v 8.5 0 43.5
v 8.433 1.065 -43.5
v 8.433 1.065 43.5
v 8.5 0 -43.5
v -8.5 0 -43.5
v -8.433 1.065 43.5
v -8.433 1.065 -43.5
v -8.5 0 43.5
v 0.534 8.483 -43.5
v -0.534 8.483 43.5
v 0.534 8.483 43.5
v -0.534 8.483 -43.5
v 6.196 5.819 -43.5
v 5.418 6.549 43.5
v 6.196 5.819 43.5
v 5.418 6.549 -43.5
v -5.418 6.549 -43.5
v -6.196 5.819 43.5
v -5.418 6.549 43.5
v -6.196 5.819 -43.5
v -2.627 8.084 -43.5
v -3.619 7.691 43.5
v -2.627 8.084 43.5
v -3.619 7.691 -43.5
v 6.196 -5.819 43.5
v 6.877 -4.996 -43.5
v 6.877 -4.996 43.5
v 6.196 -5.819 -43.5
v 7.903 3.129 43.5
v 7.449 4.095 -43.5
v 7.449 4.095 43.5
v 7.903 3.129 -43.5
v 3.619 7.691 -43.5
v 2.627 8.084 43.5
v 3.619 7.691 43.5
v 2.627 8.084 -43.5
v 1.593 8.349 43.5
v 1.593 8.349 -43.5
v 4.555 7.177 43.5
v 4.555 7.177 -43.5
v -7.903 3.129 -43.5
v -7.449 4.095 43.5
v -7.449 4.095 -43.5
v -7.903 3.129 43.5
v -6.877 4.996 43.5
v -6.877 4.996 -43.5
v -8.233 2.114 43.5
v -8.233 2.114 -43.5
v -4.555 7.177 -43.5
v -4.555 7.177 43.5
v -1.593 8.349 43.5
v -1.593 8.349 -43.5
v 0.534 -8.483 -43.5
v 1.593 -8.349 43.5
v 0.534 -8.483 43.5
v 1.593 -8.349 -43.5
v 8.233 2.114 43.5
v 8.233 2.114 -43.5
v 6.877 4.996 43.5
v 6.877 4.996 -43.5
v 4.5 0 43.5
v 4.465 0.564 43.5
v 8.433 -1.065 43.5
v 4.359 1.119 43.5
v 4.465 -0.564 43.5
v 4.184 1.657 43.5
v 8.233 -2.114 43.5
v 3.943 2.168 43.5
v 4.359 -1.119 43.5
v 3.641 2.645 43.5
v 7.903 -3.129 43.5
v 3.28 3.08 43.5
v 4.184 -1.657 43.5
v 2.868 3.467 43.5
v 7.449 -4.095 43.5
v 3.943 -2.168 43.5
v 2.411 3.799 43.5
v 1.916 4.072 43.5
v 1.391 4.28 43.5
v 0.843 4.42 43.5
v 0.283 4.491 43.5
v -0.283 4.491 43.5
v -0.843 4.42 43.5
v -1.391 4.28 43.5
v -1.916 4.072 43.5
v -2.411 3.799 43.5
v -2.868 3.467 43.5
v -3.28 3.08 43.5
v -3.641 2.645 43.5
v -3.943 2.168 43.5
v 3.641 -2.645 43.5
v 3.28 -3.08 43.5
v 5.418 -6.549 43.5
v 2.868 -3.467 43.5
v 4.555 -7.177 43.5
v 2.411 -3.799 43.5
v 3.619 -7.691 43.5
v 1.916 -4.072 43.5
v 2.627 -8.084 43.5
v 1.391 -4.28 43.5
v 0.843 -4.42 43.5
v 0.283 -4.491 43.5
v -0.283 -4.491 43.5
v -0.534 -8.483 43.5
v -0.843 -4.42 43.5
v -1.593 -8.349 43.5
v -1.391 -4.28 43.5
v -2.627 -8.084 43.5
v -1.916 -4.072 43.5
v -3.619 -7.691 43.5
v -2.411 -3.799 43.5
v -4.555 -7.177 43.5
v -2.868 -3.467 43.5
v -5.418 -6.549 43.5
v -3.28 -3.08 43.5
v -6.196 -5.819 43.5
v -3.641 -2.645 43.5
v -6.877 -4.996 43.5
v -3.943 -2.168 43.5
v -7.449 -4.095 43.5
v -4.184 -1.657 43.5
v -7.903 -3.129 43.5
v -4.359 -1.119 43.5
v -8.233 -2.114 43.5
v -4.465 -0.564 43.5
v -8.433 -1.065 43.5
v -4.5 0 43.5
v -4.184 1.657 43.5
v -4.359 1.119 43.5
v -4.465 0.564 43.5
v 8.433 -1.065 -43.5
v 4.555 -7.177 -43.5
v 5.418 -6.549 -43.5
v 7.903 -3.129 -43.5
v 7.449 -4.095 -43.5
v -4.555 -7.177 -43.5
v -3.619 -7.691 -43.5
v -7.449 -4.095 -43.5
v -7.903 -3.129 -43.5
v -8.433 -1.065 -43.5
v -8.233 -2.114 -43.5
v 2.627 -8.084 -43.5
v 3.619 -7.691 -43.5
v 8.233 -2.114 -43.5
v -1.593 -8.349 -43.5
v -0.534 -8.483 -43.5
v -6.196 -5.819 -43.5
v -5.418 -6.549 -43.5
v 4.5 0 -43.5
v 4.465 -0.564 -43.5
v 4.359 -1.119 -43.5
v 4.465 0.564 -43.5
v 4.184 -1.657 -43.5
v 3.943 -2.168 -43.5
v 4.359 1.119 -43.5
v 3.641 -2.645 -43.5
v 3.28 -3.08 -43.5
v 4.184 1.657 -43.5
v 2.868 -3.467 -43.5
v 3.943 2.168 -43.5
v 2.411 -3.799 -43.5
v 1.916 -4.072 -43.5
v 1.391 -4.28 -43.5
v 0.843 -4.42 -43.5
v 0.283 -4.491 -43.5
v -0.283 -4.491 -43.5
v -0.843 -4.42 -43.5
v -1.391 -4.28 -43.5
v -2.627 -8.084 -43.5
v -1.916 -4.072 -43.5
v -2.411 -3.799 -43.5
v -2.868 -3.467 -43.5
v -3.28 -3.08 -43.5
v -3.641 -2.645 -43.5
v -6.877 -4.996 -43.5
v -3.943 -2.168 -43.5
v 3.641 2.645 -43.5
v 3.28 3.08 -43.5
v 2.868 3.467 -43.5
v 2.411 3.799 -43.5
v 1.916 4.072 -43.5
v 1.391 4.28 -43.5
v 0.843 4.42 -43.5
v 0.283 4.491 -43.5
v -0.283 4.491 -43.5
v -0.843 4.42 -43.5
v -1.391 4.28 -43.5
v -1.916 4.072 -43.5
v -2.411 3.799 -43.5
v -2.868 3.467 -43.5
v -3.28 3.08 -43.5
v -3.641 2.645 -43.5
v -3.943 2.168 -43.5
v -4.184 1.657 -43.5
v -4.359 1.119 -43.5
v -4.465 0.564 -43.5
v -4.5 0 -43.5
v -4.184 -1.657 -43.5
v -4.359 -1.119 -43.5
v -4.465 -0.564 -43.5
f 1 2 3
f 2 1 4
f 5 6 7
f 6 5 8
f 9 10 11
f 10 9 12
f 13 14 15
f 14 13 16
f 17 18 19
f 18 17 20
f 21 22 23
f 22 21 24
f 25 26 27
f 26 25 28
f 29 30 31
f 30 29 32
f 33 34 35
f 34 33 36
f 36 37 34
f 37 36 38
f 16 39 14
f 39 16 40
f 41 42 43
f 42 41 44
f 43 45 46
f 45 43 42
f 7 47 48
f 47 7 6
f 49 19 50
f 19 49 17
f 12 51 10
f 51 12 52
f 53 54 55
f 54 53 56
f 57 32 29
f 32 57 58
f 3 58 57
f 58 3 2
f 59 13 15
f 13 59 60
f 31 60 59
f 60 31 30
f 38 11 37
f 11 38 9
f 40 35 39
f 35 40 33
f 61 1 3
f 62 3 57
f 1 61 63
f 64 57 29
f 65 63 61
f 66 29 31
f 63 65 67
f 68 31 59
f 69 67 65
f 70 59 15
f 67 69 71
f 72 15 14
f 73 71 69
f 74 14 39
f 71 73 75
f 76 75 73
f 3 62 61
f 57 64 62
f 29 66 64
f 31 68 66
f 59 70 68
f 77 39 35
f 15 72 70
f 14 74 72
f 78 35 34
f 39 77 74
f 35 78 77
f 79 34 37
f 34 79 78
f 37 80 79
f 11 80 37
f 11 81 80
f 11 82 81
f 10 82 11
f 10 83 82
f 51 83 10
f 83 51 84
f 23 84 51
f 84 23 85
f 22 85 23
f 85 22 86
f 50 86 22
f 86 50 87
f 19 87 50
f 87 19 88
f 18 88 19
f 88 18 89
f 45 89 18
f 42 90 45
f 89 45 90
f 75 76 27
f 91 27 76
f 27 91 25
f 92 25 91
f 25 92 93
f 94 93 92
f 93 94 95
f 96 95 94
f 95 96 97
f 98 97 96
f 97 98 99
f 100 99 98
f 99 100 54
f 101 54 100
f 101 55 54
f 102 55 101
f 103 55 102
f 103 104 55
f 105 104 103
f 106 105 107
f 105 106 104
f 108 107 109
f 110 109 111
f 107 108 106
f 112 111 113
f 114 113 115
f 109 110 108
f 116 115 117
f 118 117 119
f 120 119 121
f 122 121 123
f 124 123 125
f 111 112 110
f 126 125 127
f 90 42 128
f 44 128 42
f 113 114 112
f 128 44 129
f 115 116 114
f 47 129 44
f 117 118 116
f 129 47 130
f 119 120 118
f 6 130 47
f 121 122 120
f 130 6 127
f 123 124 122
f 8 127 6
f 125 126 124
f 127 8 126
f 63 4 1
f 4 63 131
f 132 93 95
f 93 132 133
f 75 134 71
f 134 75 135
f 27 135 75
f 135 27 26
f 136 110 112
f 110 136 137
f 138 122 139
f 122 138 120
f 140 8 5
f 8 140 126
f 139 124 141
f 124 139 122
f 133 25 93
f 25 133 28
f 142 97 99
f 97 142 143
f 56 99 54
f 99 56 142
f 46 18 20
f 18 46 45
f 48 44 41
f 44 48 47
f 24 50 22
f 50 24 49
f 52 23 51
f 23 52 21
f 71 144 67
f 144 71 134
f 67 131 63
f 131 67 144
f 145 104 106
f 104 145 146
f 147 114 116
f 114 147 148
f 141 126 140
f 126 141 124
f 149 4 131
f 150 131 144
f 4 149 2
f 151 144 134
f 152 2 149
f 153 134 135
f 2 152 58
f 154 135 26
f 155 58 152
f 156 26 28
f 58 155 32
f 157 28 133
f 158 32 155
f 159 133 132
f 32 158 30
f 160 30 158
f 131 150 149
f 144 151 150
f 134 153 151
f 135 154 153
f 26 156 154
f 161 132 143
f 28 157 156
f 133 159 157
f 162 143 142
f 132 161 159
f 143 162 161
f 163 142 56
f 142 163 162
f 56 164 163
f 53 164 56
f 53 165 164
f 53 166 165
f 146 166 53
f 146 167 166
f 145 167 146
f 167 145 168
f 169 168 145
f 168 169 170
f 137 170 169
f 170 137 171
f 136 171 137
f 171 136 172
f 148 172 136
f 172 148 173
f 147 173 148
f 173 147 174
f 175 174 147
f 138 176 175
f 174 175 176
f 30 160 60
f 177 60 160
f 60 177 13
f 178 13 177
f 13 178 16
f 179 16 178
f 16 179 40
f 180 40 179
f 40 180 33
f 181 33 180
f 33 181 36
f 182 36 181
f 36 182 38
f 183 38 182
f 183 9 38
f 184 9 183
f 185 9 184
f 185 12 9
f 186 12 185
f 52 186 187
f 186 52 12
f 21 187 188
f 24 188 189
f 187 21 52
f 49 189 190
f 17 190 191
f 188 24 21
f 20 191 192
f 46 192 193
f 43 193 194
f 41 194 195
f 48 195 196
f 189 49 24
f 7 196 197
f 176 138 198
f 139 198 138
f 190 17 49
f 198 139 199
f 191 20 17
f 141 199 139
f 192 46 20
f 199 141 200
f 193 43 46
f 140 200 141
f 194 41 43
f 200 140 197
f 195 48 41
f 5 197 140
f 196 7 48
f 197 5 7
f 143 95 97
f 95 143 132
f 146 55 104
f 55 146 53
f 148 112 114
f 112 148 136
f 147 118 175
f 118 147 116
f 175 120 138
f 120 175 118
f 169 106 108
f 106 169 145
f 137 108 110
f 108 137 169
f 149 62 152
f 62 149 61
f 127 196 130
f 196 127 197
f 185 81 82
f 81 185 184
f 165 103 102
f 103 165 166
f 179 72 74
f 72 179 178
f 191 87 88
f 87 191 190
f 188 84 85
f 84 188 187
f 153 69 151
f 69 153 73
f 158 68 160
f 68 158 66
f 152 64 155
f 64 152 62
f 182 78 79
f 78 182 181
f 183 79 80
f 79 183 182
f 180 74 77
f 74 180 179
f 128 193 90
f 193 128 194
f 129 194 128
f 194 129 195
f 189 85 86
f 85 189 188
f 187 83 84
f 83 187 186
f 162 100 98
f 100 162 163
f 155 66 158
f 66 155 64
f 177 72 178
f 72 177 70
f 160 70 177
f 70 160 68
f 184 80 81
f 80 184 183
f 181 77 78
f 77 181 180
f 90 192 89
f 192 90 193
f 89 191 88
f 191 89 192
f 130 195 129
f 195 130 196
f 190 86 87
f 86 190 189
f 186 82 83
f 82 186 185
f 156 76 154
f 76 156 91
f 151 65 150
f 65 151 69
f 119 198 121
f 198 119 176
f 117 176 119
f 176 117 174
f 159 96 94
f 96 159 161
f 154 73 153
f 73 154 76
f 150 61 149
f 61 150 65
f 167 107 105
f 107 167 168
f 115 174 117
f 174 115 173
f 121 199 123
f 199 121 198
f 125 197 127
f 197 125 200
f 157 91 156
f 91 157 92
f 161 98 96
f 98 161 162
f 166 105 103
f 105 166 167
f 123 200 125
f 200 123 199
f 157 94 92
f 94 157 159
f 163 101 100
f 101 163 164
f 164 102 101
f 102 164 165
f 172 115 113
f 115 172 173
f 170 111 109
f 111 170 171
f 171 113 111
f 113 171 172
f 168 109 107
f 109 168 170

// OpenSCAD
$fn = 50;


difference() {
	union() {
		translate(v = [0, 0, -43.5000000000]) {
			cylinder(h = 87, r = 8.5000000000);
		}
	}
	union() {
		translate(v = [0, 0, -100.0000000000]) {
			cylinder(h = 200, r = 4.5000000000);
		}
	}
}
